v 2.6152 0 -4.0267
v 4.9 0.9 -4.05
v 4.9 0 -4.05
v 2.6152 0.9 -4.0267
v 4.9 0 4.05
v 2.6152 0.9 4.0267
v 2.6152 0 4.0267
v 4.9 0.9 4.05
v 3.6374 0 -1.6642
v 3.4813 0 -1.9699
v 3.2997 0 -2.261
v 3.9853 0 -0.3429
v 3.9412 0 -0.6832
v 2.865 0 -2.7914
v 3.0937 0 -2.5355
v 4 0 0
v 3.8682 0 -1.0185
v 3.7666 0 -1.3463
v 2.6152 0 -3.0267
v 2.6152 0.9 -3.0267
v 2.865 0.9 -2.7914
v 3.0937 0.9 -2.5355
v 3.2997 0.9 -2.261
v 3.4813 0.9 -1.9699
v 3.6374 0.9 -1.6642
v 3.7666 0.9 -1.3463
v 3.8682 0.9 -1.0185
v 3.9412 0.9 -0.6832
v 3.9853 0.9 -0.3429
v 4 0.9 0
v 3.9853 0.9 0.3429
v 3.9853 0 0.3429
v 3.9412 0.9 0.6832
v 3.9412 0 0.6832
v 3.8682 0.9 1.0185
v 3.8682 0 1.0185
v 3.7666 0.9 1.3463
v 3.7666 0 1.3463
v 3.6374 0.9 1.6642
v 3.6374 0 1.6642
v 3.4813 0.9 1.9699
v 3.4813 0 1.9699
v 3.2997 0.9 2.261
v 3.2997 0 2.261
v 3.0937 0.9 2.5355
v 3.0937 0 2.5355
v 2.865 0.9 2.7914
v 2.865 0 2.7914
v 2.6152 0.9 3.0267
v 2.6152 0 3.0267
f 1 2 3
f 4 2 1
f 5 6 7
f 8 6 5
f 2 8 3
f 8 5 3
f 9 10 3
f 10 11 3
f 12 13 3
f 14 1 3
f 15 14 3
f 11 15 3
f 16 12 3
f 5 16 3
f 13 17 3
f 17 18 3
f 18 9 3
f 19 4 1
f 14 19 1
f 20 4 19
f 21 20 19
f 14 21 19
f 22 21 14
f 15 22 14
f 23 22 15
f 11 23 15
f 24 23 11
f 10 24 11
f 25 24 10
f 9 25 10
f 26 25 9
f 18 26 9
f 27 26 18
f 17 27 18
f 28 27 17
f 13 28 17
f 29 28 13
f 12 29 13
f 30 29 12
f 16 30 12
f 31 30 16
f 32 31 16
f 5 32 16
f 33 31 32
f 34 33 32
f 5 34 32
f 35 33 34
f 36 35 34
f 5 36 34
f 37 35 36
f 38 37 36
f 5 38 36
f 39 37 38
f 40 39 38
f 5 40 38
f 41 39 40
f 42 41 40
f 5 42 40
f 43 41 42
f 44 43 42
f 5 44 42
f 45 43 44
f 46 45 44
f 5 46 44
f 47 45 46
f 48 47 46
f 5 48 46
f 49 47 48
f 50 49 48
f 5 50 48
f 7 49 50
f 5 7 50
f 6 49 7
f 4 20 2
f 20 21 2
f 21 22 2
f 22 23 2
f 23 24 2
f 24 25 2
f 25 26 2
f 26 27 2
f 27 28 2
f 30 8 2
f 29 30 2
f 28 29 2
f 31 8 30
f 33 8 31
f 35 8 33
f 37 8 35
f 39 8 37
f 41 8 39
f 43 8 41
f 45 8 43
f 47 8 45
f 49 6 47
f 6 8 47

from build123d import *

# Parameters (mm, degrees)
BOSS_EXTRUDE1_DEPTH = 0.9


with BuildPart() as part:
    # Sketch1 → Boss-Extrude1 (new body)
    with BuildSketch(Plane(origin=(0, 0, 0), x_dir=(1, 0, 0), z_dir=(0, 1, 0))):
        with BuildLine():
            Line((4.9, 4.05), (2.615181585, 4.026685526))
            Line((2.615181585, 4.026685526), (2.615181585, 3.026685526))
            ThreePointArc((2.615181585, 3.026685526), (4, 0), (2.615181585, -3.026685526))
            Line((2.615181585, -3.026685526), (2.615181585, -4.026685526))
            Line((2.615181585, -4.026685526), (4.9, -4.05))
            Line((4.9, -4.05), (4.9, 4.05))
        make_face()
    extrude(amount=BOSS_EXTRUDE1_DEPTH)


solid = part.part
